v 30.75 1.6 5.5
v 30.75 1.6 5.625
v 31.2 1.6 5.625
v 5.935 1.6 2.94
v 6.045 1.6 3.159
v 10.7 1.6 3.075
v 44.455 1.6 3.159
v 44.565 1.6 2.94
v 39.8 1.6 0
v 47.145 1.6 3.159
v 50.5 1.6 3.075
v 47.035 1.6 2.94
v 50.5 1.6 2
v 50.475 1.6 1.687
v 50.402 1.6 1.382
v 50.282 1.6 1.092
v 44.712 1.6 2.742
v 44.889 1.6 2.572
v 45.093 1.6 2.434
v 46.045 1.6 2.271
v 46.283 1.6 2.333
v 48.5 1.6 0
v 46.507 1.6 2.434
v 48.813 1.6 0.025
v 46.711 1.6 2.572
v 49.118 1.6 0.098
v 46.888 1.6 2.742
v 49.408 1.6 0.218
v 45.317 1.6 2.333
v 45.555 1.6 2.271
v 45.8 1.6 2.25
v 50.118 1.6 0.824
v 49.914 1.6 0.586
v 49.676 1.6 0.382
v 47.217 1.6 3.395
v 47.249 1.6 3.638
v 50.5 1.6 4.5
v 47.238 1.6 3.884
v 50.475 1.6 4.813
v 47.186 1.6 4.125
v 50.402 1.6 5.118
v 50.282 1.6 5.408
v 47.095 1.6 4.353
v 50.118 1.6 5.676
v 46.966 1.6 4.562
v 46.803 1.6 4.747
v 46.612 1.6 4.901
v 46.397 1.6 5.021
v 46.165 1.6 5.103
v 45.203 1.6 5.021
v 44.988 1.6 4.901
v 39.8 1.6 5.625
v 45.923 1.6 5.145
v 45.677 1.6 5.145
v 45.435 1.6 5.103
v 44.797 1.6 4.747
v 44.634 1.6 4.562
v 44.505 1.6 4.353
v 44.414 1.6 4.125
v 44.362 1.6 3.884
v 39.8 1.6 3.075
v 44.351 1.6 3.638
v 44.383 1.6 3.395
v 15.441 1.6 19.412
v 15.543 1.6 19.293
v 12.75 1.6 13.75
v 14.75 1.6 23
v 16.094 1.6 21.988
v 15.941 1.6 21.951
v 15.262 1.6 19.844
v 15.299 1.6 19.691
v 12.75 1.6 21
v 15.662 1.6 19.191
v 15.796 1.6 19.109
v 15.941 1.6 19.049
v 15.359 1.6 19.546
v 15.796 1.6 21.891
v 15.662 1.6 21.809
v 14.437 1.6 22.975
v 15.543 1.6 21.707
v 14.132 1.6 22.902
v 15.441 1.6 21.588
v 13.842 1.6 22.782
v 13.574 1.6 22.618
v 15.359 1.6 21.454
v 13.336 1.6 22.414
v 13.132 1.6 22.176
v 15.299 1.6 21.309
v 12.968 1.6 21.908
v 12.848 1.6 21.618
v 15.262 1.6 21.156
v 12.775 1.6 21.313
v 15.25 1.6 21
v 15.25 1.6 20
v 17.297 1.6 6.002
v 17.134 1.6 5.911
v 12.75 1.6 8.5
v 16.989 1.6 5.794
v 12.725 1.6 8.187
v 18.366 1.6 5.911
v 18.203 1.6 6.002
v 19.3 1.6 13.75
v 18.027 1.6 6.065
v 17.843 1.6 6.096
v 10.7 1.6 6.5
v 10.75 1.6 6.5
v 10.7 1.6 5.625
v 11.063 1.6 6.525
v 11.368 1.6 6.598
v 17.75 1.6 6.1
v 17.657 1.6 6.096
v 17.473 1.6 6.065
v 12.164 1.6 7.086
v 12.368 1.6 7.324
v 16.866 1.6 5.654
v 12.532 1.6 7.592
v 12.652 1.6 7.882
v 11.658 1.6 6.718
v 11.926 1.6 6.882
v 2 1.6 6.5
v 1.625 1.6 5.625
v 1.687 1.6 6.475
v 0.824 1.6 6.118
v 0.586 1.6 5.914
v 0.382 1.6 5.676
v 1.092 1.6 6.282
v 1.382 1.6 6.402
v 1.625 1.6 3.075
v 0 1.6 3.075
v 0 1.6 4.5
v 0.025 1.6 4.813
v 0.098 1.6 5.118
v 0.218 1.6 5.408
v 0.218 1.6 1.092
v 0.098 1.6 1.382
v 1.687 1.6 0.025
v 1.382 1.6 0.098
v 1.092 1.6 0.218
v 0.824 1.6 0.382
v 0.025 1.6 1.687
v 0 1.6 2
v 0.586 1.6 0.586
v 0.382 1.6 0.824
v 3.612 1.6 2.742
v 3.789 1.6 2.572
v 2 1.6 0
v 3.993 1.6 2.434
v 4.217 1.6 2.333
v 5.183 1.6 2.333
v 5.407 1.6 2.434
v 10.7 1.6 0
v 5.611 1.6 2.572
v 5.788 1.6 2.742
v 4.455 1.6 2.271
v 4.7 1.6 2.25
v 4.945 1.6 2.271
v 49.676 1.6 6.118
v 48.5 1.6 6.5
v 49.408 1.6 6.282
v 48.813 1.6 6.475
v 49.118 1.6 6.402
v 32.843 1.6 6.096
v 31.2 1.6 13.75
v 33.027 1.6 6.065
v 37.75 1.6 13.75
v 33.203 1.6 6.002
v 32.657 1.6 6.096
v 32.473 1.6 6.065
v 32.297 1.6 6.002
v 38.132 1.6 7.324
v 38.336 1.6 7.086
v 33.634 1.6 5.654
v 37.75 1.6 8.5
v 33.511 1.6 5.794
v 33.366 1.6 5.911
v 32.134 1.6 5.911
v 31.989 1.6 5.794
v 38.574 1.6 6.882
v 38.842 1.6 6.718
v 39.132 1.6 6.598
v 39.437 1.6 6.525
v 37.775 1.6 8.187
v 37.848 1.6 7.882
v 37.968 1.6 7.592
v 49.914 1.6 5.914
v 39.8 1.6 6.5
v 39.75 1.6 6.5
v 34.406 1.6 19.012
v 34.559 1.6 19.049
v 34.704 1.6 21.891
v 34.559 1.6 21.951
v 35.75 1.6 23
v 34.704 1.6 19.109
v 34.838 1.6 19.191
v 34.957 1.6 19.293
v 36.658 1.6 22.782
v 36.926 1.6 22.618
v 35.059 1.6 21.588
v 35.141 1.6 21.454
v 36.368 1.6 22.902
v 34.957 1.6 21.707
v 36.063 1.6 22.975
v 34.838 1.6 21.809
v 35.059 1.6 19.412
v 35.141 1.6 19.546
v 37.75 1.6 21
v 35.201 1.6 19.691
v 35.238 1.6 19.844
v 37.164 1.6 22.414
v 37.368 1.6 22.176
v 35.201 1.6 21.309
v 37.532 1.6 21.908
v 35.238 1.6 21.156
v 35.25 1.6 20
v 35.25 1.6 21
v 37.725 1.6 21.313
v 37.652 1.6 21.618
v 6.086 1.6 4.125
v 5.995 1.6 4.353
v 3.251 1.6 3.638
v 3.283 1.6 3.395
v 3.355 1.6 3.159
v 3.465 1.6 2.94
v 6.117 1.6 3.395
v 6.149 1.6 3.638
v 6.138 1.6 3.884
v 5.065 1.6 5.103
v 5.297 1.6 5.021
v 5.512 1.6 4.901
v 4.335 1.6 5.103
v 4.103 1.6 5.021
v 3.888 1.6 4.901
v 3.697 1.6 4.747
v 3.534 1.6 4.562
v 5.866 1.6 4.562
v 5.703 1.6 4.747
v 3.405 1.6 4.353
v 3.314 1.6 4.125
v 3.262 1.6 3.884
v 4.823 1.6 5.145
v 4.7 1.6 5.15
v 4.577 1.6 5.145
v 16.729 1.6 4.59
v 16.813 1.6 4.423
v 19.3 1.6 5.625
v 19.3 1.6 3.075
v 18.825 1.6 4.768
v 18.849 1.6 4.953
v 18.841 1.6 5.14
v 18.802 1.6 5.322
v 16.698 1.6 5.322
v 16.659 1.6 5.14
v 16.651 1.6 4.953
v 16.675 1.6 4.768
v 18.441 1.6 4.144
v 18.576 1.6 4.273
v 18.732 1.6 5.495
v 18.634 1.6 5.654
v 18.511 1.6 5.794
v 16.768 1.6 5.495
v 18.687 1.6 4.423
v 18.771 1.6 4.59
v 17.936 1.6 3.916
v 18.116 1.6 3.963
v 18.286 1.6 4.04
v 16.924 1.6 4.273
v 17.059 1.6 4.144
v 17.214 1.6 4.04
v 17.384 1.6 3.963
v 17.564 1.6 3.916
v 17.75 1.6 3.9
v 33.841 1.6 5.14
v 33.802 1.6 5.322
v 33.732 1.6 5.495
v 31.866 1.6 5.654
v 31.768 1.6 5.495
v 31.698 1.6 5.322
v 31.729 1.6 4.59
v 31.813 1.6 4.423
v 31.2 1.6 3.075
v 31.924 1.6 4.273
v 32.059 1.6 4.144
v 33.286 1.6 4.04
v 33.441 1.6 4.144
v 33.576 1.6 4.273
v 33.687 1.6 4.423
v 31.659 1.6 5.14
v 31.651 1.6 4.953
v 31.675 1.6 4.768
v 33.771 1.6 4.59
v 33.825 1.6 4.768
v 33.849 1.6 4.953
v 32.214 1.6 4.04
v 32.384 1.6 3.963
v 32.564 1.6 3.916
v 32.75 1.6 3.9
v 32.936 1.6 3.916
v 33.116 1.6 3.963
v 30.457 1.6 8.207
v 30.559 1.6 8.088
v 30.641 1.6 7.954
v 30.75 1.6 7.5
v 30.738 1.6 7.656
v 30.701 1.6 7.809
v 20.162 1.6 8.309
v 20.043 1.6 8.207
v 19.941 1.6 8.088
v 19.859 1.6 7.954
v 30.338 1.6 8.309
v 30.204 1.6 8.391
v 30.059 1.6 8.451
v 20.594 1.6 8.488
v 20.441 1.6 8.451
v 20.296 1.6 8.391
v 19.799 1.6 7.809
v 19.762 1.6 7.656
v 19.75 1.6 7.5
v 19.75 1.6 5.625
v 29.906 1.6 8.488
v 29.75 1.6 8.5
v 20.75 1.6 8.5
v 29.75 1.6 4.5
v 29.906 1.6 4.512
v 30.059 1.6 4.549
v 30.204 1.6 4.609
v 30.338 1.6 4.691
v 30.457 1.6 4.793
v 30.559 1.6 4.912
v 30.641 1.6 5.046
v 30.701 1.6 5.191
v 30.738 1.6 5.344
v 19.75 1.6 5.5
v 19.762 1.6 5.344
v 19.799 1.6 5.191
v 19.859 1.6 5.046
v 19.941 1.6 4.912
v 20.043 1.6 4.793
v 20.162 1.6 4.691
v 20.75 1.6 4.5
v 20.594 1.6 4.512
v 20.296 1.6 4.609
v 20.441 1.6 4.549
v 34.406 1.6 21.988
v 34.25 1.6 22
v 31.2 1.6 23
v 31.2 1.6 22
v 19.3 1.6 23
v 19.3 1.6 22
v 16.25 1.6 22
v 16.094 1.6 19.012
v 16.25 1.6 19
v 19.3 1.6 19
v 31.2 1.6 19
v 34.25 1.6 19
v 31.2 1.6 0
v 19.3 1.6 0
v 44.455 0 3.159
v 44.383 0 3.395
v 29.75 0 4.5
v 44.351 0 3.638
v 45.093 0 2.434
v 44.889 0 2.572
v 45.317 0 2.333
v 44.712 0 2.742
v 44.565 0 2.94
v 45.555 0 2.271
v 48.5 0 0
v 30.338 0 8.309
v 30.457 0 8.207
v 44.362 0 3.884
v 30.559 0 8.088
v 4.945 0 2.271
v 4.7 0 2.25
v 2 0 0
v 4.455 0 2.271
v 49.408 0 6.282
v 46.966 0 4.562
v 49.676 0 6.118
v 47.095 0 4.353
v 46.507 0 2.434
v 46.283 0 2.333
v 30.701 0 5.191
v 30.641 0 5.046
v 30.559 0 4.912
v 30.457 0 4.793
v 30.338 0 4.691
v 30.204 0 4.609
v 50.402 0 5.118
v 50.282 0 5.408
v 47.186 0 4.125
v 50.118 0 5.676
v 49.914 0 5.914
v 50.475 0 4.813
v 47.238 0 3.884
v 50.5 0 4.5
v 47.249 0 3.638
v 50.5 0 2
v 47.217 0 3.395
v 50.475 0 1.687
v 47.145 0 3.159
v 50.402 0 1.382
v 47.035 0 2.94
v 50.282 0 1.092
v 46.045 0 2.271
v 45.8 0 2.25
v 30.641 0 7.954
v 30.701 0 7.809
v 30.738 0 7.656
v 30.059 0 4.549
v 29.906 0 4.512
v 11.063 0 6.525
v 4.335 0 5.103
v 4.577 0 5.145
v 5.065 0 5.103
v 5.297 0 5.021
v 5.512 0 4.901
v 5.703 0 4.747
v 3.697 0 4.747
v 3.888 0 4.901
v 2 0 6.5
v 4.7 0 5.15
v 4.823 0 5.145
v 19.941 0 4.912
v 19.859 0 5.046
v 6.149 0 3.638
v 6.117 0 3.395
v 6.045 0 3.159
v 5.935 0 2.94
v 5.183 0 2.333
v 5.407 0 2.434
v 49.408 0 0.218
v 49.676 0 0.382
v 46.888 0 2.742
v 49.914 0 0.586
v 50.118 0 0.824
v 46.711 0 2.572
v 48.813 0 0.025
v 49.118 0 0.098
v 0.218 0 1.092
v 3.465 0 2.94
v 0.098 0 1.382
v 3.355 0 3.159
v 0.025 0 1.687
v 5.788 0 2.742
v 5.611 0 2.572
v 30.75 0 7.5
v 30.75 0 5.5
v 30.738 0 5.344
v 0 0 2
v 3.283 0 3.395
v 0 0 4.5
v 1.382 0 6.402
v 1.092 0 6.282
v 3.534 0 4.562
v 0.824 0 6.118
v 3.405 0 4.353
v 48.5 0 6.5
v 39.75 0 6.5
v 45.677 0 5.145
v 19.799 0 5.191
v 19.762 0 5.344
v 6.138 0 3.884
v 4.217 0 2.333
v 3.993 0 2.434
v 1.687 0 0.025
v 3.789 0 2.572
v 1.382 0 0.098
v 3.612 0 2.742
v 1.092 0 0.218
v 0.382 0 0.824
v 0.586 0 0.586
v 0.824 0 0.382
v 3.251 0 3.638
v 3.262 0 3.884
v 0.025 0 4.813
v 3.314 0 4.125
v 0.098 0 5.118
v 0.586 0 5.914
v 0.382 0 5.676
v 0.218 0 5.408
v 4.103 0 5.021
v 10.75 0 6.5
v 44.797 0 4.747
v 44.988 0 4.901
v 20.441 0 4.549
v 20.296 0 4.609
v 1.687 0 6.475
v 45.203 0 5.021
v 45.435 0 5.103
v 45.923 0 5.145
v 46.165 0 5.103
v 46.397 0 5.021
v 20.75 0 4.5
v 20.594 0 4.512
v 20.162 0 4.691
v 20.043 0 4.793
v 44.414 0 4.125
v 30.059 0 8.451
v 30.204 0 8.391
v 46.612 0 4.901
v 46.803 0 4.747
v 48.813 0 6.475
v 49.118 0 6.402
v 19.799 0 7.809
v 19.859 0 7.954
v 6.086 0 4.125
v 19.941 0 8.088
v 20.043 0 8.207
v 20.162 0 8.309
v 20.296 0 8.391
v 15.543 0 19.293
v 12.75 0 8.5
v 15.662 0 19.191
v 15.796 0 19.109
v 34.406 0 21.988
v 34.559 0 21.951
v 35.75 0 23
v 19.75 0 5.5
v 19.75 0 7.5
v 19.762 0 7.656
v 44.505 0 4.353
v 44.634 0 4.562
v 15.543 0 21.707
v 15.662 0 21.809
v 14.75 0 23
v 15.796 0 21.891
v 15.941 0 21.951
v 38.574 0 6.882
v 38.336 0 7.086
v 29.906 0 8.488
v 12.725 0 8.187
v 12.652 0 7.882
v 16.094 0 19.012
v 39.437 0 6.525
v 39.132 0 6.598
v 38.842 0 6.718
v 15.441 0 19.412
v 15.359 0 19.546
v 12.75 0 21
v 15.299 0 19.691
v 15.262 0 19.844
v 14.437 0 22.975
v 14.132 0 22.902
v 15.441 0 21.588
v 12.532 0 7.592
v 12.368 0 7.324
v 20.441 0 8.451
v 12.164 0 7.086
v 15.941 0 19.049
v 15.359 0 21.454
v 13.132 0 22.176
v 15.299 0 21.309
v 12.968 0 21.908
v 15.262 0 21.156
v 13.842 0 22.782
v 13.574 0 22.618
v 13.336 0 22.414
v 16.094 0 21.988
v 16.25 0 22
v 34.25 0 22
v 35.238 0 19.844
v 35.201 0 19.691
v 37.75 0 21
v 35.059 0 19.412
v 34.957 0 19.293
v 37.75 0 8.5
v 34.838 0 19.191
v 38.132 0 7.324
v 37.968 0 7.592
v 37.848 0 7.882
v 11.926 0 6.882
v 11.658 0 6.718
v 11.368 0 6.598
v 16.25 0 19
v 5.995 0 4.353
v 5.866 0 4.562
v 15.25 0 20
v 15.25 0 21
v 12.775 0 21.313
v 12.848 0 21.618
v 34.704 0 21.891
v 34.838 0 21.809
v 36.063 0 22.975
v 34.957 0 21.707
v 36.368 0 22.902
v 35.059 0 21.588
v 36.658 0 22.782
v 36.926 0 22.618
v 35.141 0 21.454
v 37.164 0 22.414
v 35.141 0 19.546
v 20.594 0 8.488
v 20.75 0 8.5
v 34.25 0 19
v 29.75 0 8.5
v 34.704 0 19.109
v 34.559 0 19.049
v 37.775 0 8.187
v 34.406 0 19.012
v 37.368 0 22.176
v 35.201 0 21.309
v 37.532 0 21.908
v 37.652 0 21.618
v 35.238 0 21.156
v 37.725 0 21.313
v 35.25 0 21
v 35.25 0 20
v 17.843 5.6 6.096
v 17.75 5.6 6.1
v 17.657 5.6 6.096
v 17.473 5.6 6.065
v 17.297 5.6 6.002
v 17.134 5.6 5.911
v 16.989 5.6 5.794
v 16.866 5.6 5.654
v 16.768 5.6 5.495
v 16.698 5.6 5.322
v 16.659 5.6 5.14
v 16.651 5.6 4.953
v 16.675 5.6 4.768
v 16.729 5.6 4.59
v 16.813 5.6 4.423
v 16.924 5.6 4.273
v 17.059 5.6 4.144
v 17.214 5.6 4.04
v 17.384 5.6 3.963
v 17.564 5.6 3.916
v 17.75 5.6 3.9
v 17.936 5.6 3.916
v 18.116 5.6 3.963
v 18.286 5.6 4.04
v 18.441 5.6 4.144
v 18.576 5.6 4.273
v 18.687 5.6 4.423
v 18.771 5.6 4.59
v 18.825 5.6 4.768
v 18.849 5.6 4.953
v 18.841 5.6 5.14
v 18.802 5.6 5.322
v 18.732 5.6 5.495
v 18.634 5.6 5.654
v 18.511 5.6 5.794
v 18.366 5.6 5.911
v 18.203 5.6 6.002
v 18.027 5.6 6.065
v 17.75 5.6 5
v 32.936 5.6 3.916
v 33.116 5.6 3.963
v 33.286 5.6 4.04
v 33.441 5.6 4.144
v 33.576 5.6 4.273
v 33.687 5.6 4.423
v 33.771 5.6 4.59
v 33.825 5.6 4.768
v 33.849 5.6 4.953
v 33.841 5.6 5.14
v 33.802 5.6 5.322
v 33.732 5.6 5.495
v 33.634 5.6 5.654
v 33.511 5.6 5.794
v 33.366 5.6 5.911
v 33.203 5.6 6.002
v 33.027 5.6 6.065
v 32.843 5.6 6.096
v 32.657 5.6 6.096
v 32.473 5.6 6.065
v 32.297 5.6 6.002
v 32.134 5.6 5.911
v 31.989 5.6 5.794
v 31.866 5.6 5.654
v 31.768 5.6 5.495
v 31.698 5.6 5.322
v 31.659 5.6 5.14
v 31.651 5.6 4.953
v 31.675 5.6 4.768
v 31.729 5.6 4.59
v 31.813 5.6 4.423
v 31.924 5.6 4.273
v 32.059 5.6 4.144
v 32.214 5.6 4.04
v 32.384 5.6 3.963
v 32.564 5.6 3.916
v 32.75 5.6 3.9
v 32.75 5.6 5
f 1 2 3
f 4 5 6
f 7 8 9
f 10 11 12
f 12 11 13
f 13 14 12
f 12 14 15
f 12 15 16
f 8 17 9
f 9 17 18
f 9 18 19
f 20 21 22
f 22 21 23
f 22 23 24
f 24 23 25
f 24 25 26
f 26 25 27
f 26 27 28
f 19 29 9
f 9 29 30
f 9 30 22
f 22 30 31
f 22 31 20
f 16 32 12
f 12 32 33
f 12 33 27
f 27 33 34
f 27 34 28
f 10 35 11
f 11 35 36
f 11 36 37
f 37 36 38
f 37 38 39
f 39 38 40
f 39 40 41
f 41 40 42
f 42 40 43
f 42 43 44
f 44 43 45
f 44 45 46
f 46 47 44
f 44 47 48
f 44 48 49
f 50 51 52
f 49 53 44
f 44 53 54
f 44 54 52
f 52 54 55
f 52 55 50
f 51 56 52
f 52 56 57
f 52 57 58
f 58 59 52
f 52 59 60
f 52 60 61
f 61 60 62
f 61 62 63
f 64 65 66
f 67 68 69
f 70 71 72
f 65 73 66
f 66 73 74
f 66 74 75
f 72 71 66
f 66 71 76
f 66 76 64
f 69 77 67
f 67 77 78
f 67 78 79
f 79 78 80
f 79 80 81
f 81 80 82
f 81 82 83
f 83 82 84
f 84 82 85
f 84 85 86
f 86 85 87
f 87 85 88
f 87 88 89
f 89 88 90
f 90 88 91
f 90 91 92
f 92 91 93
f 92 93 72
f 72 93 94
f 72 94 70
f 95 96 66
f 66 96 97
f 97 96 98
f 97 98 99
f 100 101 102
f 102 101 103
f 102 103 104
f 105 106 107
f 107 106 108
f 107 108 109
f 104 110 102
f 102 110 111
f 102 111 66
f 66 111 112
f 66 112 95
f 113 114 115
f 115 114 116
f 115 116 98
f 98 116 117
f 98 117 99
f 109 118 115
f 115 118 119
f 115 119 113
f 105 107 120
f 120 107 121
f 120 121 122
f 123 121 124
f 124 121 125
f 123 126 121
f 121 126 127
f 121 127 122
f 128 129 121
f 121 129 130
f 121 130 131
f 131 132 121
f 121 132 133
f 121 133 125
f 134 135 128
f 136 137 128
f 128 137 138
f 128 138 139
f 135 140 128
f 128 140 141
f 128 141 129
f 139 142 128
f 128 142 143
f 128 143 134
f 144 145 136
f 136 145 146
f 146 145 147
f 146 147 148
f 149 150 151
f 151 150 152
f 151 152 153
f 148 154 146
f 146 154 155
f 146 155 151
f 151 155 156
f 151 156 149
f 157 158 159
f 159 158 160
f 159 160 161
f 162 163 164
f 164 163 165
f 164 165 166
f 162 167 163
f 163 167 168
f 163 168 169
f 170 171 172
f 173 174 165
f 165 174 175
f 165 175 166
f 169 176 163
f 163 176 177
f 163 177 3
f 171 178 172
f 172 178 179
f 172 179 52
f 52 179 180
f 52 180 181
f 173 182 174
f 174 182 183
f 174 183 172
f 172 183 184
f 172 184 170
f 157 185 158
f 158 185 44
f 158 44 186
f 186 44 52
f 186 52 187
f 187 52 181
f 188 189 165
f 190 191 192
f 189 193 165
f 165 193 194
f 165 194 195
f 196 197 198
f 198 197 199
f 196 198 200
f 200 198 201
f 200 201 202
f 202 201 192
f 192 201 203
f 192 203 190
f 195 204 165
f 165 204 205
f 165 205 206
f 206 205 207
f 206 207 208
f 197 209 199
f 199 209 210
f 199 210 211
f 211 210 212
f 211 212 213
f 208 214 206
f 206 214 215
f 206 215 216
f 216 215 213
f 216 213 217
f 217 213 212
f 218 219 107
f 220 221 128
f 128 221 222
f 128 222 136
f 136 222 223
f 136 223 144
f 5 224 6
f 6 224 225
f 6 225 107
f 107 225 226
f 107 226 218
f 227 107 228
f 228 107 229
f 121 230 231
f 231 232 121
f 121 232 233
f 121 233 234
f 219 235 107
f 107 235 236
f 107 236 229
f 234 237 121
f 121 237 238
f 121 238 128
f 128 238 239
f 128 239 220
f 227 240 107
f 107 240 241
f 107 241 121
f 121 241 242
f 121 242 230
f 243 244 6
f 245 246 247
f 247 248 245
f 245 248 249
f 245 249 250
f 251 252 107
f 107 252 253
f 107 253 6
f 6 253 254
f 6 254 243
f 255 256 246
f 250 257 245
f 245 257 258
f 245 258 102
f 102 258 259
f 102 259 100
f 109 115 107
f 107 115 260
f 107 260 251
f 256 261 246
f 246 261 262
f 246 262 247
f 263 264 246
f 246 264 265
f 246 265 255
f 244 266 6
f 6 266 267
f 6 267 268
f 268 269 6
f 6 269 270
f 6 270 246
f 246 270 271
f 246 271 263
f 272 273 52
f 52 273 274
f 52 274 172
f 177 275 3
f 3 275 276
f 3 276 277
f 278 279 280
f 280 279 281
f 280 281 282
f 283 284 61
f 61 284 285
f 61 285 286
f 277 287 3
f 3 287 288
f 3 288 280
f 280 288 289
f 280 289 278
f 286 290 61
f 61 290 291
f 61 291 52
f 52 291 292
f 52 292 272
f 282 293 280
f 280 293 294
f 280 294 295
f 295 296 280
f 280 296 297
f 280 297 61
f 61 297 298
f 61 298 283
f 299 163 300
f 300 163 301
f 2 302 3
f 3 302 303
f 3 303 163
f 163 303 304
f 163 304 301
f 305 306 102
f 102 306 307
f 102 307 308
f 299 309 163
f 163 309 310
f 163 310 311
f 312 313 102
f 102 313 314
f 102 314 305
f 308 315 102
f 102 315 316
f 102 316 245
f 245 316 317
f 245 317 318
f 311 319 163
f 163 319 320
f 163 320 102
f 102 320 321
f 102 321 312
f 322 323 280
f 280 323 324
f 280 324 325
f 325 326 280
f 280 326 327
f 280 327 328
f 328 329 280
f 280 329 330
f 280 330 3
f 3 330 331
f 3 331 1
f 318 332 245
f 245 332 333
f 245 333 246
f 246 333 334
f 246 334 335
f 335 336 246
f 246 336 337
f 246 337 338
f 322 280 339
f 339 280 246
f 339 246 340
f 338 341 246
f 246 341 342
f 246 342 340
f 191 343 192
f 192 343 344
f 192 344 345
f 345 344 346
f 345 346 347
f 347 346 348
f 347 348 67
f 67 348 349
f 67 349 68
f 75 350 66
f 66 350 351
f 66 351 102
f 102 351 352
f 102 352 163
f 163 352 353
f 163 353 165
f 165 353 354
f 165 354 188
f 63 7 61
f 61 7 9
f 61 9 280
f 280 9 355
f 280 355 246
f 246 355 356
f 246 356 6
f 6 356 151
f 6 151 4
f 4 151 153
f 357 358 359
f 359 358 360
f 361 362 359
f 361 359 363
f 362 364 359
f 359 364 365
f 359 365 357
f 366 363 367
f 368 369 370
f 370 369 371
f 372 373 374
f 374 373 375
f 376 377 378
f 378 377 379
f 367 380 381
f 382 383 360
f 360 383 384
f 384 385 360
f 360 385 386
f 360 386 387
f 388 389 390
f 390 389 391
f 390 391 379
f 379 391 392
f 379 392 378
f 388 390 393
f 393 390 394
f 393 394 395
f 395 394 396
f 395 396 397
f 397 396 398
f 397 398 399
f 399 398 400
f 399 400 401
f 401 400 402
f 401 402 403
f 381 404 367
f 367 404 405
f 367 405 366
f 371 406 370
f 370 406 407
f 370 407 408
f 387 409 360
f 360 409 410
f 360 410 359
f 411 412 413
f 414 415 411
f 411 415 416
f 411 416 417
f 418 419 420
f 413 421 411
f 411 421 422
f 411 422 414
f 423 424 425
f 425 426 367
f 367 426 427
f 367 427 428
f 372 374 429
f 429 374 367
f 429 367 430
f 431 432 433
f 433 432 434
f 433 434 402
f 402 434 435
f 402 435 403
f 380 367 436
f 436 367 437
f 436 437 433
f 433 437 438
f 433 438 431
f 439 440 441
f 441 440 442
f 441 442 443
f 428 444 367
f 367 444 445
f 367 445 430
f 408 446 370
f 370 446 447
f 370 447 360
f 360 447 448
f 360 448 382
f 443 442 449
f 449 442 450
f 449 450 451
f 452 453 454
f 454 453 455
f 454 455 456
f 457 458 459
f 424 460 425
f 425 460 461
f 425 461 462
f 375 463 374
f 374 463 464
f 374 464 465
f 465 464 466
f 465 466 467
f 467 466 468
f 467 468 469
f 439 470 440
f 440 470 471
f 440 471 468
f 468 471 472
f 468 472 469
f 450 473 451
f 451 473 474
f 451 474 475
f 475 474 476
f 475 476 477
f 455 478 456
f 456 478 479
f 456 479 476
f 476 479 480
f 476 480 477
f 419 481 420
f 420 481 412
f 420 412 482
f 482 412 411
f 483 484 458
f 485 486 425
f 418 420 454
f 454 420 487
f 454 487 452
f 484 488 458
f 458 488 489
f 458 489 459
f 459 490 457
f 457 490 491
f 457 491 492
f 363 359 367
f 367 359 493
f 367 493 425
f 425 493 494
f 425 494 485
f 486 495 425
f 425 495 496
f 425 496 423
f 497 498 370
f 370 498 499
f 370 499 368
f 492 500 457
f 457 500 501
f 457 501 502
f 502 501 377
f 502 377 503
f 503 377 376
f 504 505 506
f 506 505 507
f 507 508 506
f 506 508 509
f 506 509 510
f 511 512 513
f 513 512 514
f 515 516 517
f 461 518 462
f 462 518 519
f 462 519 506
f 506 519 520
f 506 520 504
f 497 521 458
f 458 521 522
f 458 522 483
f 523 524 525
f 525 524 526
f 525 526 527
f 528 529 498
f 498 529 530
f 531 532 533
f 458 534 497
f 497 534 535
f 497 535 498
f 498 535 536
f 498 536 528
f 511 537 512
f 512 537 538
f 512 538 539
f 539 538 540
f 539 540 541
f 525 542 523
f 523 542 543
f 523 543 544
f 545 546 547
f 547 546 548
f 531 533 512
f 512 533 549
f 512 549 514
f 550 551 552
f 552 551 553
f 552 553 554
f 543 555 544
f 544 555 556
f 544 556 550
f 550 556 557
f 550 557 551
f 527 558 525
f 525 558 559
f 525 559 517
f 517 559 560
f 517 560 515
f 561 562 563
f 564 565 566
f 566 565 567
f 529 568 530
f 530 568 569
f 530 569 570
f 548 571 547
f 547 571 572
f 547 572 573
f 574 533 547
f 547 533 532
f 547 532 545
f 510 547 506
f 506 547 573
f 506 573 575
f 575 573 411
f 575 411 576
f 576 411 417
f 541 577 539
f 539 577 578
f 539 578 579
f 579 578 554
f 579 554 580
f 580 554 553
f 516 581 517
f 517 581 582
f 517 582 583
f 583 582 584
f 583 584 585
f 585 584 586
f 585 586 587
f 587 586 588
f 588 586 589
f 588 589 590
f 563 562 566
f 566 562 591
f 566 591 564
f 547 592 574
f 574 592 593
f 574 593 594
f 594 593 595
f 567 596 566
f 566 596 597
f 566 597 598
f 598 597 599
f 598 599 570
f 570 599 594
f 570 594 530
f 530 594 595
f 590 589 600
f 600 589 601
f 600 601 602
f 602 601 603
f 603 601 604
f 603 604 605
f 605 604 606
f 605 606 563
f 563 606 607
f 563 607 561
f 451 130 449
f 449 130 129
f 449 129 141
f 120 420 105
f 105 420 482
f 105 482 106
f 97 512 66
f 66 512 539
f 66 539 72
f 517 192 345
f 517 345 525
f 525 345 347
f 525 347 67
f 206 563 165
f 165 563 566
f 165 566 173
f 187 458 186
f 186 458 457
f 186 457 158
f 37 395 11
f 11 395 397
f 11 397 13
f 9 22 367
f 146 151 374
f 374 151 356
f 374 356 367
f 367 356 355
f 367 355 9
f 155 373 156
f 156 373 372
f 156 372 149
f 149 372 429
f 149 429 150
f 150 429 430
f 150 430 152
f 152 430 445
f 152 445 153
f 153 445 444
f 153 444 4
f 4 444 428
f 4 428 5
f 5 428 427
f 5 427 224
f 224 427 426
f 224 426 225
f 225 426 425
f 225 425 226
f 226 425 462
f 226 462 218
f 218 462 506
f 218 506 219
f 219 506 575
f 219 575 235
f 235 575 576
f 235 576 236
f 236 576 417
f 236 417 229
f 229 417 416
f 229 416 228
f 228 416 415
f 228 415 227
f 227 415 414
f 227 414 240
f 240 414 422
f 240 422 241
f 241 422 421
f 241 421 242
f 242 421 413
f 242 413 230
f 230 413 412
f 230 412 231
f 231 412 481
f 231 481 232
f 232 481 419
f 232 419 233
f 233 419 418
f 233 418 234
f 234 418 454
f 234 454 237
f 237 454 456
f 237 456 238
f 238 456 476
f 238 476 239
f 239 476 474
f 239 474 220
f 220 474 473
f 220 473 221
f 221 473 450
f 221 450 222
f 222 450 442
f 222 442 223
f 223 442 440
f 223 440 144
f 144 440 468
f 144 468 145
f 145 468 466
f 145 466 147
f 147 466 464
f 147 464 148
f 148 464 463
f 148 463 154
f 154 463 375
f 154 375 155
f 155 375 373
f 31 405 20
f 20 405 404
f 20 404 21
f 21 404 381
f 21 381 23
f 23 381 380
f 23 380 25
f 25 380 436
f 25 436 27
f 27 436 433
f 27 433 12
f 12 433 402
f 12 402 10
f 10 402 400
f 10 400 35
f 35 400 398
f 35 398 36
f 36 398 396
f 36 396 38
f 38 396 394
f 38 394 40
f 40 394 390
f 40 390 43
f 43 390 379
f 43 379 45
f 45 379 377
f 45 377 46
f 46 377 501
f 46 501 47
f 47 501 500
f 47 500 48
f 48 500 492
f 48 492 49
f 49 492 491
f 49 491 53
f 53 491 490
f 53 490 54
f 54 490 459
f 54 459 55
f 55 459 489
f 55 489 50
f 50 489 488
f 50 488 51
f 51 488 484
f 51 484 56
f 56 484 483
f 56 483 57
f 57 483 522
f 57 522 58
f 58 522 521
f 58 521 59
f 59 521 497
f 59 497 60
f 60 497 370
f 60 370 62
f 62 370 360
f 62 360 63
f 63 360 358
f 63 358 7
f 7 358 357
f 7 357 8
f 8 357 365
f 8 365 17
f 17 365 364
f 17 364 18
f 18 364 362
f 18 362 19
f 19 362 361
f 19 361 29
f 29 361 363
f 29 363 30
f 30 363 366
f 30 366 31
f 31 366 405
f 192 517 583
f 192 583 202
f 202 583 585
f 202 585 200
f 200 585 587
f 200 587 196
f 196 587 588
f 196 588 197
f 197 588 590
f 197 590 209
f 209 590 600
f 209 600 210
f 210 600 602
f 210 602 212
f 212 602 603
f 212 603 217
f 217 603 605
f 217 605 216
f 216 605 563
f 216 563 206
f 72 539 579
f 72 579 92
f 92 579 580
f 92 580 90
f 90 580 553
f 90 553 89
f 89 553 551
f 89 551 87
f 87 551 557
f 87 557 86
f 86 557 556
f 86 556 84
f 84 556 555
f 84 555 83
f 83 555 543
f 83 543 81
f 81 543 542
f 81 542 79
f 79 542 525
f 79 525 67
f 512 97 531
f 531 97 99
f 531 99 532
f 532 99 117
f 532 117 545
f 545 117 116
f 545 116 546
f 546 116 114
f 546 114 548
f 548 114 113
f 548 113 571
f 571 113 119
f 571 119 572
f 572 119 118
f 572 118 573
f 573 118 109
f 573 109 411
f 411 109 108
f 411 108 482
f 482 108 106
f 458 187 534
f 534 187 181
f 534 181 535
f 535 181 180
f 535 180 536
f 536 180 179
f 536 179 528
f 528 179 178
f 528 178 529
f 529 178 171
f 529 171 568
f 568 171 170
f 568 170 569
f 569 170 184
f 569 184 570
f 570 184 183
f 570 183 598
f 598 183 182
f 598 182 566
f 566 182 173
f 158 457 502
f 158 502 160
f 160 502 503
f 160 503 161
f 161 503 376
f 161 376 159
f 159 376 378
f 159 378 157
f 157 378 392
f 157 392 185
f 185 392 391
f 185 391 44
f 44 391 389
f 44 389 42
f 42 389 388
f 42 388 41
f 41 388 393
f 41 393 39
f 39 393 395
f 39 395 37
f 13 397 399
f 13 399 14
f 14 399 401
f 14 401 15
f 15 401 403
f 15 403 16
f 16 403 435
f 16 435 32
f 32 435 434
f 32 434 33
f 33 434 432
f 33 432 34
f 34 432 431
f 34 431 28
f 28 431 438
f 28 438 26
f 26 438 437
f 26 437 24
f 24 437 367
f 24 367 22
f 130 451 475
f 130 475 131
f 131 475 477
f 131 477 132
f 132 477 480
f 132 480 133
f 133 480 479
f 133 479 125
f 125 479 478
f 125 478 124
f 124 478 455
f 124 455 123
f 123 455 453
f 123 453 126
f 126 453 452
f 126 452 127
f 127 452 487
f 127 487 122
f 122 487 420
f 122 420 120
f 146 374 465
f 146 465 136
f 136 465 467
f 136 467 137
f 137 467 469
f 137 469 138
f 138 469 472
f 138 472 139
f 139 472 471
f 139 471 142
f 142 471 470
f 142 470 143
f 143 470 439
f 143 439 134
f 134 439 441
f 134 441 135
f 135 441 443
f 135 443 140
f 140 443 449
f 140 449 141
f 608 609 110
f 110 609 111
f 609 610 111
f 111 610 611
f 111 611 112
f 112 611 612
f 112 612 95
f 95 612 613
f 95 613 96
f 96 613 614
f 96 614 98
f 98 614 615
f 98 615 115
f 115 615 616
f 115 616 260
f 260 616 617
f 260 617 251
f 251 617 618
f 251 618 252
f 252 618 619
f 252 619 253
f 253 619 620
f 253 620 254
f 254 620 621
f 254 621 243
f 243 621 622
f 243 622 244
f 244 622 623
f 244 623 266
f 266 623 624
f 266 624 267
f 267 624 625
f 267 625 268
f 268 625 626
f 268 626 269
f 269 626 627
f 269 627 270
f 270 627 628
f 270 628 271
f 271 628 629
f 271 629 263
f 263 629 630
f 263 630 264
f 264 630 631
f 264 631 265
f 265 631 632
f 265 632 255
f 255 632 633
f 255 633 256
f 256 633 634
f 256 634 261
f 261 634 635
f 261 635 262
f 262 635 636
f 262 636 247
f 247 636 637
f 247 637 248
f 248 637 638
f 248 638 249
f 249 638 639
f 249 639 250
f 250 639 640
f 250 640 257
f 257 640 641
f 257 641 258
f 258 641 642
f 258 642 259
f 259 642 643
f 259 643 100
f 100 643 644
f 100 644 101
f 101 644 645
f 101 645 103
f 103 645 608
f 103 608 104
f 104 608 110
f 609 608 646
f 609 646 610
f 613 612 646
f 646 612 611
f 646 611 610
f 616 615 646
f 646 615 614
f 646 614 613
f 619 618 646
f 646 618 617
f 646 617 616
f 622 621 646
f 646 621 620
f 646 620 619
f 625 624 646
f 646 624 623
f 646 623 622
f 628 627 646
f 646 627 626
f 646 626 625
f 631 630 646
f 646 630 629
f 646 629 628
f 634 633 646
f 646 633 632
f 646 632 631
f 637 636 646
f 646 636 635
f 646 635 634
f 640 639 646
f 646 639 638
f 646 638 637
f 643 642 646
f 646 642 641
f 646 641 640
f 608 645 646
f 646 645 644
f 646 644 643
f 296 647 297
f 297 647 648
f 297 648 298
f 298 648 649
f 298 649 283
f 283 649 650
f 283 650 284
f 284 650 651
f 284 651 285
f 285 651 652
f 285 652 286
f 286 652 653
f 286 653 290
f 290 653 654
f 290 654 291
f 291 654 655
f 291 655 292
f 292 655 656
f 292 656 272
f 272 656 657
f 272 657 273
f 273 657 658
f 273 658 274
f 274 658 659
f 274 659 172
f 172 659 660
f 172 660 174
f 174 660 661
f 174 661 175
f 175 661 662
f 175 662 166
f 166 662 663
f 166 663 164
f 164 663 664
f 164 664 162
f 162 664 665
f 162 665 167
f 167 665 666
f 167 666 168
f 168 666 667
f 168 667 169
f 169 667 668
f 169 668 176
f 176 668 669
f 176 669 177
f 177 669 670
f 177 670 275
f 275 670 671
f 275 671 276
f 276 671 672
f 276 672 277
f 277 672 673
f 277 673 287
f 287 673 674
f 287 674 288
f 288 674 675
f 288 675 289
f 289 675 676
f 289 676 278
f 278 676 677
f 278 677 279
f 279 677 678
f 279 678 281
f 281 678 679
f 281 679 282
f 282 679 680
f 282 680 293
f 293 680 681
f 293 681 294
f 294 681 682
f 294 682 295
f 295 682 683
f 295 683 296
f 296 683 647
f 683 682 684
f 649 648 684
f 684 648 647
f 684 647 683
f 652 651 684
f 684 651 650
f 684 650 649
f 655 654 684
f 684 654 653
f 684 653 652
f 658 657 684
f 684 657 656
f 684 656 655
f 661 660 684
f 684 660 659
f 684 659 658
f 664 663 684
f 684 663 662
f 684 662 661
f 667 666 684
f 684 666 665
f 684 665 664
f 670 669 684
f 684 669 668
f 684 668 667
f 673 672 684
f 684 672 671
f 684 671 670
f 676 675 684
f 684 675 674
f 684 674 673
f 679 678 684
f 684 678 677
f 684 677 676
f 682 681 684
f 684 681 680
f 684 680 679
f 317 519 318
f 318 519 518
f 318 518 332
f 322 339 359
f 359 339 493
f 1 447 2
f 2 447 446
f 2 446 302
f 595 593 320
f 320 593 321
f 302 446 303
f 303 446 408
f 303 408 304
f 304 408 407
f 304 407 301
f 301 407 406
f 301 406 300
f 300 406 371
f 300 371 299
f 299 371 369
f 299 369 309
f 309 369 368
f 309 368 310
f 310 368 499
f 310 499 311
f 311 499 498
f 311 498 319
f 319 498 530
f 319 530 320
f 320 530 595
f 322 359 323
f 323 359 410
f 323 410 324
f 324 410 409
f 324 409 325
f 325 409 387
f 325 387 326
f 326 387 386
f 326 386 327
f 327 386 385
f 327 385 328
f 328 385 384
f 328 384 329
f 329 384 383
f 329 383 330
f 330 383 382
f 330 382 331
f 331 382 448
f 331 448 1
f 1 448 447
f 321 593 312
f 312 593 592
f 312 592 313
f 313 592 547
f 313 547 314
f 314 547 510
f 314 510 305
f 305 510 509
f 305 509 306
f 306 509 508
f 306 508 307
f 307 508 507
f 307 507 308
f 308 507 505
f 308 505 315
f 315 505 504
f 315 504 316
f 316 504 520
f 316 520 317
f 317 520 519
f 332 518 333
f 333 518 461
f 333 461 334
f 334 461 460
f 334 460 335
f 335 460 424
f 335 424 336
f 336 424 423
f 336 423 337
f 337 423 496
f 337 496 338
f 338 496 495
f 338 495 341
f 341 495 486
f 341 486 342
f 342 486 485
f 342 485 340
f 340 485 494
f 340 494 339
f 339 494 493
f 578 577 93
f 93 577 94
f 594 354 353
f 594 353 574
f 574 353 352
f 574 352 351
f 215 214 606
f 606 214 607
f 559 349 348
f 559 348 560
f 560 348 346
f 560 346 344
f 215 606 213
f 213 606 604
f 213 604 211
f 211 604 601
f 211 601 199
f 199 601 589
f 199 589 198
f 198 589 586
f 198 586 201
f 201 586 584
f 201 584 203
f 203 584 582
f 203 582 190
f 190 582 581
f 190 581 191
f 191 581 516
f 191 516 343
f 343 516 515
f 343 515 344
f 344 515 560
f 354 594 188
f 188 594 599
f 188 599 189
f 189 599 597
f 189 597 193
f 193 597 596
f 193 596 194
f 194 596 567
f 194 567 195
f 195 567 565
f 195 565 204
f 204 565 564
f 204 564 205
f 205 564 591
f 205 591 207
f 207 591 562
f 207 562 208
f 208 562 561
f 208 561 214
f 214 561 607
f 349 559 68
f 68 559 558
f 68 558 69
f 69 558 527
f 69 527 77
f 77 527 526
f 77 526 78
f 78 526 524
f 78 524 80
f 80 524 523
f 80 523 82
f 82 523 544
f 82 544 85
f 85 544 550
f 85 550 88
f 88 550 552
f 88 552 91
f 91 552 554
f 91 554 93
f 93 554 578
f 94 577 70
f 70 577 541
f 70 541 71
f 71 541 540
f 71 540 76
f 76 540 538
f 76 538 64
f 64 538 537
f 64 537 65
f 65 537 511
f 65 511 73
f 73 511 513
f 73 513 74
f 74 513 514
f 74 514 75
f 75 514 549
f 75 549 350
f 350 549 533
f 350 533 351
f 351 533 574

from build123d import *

# Parameters (mm, degrees)
SKIZZE1_R                       = 1.45
AUFSATZ_LINEAR_AUSTRAGEN1_DEPTH = 1.6
VERRUNDUNG1_R                   = 2
SKIZZE2_R                       = 1.1
AUFSATZ_LINEAR_AUSTRAGEN2_DEPTH = 4
SKIZZE3_W                       = 11
SKIZZE3_H                       = 4
SCHNITT_LINEAR_AUSTRAGEN1_DEPTH = 3
VERRUNDUNG2_R                   = 1
SKIZZE4_W                       = 20
SKIZZE4_H                       = 3
SCHNITT_LINEAR_AUSTRAGEN2_DEPTH = 3
VERRUNDUNG3_R                   = 1


with BuildPart() as part:
    # Skizze1 → Aufsatz-Linear austragen1 (new body)
    with BuildSketch(Plane(origin=(0, 0, 0), x_dir=(1, 0, 0), z_dir=(0, 1, 0))):
        Polygon((0, 0), (50.5, 0), (50.5, -6.5), (37.75, -6.5), (37.75, -23), (12.75, -23), (12.75, -6.5), (0, -6.5), align=None)
        with Locations(Location((4.7, -3.7, 0), (0, 0, 270))):
            Circle(SKIZZE1_R, mode=Mode.SUBTRACT)
        with Locations(Location((45.8, -3.7, 0), (0, 0, 90))):
            Circle(SKIZZE1_R, mode=Mode.SUBTRACT)
    extrude(amount=AUFSATZ_LINEAR_AUSTRAGEN1_DEPTH)

    # Verrundung1
    verrundung1_edges = [part.edges().sort_by_distance(p)[0] for p in [
        (0, 0.8, 0),
        (50.5, 0.8, 0),
        (50.5, 0.8, 6.5),
        (37.75, 0.8, 6.5),
        (37.75, 0.8, 23),
        (12.75, 0.8, 23),
        (12.75, 0.8, 6.5),
        (0, 0.8, 6.5),
    ]]
    fillet(verrundung1_edges, radius=VERRUNDUNG1_R)

    # Skizze2 → Aufsatz-Linear austragen2 (add)
    with BuildSketch(Plane(origin=(0, 1.6, 0), x_dir=(1, 0, 0), z_dir=(0, 1, 0))):
        with Locations(Location((17.75, -5, 0), (0, 0, 270))):
            Circle(SKIZZE2_R)
        with Locations(Location((32.75, -5, 0), (0, 0, 90))):
            Circle(SKIZZE2_R)
    extrude(amount=AUFSATZ_LINEAR_AUSTRAGEN2_DEPTH)

    # Skizze3 → Schnitt-Linear austragen1 (cut)
    with BuildSketch(Plane(origin=(0, 1.6, 0), x_dir=(1, 0, 0), z_dir=(0, 1, 0))):
        with Locations((25.25, -6.5)):
            Rectangle(SKIZZE3_W, SKIZZE3_H)
    extrude(amount=-SCHNITT_LINEAR_AUSTRAGEN1_DEPTH, mode=Mode.SUBTRACT)

    # Verrundung2
    verrundung2_edges = [part.edges().sort_by_distance(p)[0] for p in [
        (19.75, 0.8, 8.5),
        (19.75, 0.8, 4.5),
        (30.75, 0.8, 4.5),
        (30.75, 0.8, 8.5),
    ]]
    fillet(verrundung2_edges, radius=VERRUNDUNG2_R)

    # Skizze4 → Schnitt-Linear austragen2 (cut)
    with BuildSketch(Plane(origin=(0, 1.6, 0), x_dir=(1, 0, 0), z_dir=(0, 1, 0))):
        with Locations((25.25, -20.5)):
            Rectangle(SKIZZE4_W, SKIZZE4_H)
    extrude(amount=-SCHNITT_LINEAR_AUSTRAGEN2_DEPTH, mode=Mode.SUBTRACT)

    # Verrundung3
    verrundung3_edges = [part.edges().sort_by_distance(p)[0] for p in [
        (15.25, 0.8, 22),
        (15.25, 0.8, 19),
        (35.25, 0.8, 19),
        (35.25, 0.8, 22),
    ]]
    fillet(verrundung3_edges, radius=VERRUNDUNG3_R)


solid = part.part
